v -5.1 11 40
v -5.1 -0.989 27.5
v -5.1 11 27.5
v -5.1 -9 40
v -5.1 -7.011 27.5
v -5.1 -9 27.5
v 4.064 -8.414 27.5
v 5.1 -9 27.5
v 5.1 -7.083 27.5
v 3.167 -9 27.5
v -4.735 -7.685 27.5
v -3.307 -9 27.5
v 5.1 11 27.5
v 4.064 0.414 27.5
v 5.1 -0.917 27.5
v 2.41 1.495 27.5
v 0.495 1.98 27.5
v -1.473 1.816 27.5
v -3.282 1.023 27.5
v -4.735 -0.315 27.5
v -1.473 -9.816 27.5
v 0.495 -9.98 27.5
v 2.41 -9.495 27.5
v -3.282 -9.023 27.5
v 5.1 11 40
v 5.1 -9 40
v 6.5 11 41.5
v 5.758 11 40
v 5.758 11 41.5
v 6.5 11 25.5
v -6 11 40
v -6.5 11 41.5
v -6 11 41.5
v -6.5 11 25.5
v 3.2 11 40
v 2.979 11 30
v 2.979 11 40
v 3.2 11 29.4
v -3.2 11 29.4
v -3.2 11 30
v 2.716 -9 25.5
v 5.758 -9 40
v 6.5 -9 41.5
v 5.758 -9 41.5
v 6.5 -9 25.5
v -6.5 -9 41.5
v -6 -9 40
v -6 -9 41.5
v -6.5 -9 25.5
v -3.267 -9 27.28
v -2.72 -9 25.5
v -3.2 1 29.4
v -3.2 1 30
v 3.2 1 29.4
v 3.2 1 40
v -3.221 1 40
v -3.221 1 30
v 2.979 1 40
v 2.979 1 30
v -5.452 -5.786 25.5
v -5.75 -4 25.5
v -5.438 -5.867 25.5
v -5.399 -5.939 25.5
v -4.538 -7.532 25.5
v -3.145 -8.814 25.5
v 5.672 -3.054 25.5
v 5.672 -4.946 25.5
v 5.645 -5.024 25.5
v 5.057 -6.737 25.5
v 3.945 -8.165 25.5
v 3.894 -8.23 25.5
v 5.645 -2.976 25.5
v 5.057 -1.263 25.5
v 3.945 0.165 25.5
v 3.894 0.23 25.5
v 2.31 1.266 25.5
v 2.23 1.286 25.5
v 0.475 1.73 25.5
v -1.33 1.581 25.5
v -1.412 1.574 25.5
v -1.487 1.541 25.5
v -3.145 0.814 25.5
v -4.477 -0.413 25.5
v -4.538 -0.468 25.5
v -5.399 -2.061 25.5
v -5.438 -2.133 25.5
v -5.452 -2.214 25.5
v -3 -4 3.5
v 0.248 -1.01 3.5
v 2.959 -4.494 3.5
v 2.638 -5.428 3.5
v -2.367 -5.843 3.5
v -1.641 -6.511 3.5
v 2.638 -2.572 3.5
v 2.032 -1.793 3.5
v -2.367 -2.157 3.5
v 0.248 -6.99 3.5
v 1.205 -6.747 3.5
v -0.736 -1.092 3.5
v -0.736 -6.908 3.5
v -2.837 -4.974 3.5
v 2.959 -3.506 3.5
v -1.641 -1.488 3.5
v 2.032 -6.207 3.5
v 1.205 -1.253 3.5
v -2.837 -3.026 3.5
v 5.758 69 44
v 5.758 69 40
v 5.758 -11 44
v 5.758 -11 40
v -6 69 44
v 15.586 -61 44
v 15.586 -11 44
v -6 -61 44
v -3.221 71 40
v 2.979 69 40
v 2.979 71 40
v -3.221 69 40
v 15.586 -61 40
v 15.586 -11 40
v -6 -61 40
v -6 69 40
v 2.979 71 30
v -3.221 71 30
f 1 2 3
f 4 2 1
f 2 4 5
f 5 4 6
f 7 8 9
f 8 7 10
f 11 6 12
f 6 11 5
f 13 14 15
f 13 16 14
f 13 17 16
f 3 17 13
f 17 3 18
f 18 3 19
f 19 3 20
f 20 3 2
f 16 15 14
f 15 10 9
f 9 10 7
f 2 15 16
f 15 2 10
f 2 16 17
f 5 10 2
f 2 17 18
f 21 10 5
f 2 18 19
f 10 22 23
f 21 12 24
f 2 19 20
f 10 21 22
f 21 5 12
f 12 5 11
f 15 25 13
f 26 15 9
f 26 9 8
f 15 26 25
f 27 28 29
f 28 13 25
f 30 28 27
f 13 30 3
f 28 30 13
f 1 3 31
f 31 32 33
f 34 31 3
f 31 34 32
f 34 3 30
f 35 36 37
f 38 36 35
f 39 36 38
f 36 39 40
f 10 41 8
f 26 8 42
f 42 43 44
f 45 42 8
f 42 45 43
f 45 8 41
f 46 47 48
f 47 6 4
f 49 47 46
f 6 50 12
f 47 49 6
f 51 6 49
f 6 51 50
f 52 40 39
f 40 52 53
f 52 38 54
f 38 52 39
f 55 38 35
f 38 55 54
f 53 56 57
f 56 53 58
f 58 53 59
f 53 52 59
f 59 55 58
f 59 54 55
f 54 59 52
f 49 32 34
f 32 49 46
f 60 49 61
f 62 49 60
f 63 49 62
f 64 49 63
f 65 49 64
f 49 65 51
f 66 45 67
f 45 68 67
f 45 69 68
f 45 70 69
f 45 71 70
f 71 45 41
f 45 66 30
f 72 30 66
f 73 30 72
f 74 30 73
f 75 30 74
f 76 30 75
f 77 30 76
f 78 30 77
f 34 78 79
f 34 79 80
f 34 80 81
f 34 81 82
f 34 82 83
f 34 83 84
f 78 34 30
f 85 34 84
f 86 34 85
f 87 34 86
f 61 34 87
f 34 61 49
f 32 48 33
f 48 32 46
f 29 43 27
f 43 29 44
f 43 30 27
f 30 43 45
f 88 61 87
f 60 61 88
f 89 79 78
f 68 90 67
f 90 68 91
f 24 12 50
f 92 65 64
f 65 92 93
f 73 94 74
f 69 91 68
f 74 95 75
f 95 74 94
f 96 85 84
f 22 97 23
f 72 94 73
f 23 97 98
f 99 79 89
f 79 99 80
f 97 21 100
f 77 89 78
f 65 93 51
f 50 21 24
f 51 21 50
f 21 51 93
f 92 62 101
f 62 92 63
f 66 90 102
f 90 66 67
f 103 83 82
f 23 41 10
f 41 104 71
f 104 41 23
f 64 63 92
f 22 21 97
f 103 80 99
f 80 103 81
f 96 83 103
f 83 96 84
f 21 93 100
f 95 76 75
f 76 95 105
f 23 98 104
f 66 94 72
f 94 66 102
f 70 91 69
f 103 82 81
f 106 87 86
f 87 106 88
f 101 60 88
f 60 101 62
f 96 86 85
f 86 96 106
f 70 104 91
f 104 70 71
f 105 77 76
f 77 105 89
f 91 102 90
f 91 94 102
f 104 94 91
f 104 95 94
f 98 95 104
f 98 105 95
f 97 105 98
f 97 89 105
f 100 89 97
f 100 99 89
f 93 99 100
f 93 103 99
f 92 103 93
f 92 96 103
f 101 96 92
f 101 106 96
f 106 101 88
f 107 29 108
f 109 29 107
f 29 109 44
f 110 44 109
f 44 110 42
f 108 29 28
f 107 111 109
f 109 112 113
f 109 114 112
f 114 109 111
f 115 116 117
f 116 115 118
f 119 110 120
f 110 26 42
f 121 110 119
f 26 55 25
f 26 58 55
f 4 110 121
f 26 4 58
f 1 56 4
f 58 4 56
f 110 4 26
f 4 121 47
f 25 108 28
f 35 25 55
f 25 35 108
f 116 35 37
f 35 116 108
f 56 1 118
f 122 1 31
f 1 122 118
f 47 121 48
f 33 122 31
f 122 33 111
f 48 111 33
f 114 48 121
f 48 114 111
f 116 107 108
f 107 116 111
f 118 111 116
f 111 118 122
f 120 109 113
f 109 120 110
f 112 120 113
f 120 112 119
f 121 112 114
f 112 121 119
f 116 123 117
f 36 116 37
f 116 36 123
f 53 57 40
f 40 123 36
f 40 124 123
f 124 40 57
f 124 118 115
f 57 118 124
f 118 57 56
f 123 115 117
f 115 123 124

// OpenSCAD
// file: irkem_hammerTips_v0.scad
tol = 0.2;
extrWall = 1.7+tol;
extrH = 12.9+tol;//12.6+tol;
extrW = 10+tol;

hammerY = 20;
hammerZ = 24;

module hammerTips(){
translate([0,-5,0]) cylinder(hammerZ,6,3);
difference(){
    translate([-6.5,-10,-14]) cube([13,hammerY,16]);
    union(){uChan();translate([-extrW/2,-hammerY/2,-extrH]) cube([extrW,hammerY/2,extrH]);
}
}
module uChan(){
difference(){
    translate([-extrW/2,-hammerY/2,-extrH]) cube([extrW,hammerY,extrH]);
    translate([-extrW/2+extrWall,-hammerY/2,-extrH-extrWall]) cube([extrW-2*extrWall,hammerY,extrH]);
}
}
}

//hammerTips();
// main file
include <irkem_hammerTips_v0.scad>

xO = -6;
yO = -11;
zO = 40;

kH = 4;
bH = 10;
wL = 50;
bL = 80;
oct = 6.5 * 25.4;
gap = 2;
n_oct = 1;//5;
n_keys = 12 * n_oct;
oset = -1;

sharpFlag = 1;

for (k = [0]){//:1:(n_keys-1)]){
    //
    translate([k*13.75+6.0+xO,12+yO,-12.5+zO]) rotate([0,180,0]) hammerTips();
}

for (k = [0:1:(n_oct-1)]){

//C:
color("ivory") translate([k*oct+0+xO,0+yO,0+zO]) cube([oct*1/12-gap,bL,kH]);
color("ivory") translate([k*oct+0+xO,-wL+yO,0+zO]) cube([oct*1/7-gap,wL,kH]);

////C#:
//if (sharpFlag){    
//color("black") translate([k*oct+oct*1/12+xO,gap+yO,0+zO]) cube([oct*1/12-gap,bL,kH+bH]);
//}//

////D:
//color("ivory") translate([k*oct+oct*2/12+xO,0+yO,0+zO]) cube([oct*1/12-gap,bL,kH]);
//color("ivory") translate([k*oct+oct*1/7+xO,-wL+yO,0+zO]) cube([oct*1/7-gap,wL,kH]);//

////D#:
//if (sharpFlag){
//color("black") translate([k*oct+oct*3/12+xO,gap+yO,0+zO]) cube([oct*1/12-gap,bL,kH+bH]);
//}//

////E:
//color("ivory") translate([k*oct+oct*4/12+xO,0+yO,0+zO]) cube([2+oct*1/12-gap,bL,kH]);
//color("ivory") translate([k*oct+oct*2/7+xO,-wL+yO,0+zO]) cube([oct*1/7-gap,wL,kH]);//

////F:
//color("ivory") difference(){
//    translate([k*oct+oct*3/7+xO,-wL+yO,0+zO]) cube([oct*1/7-gap,wL+bL,kH]);
//    translate([k*oct+oct*6/12-2+xO,0+yO,0+zO]) cube([4+oct*(1/7-1/12)-gap,bL,kH]);
//}
//color("ivory") translate([k*oct+oct*3/7+xO,-wL+yO,0+zO]) cube([oct*1/7-gap,wL,kH]);//

////F#:
//if (sharpFlag){
//color("black") translate([k*oct+oct*6/12+xO,gap+yO,0+zO]) cube([oct*1/12-gap,bL,kH+bH]);
//}//

////G:
//color("ivory") translate([k*oct+oct*7/12+xO,0+yO,0+zO]) cube([oct*1/12-gap,bL,kH]);
//color("ivory") translate([k*oct+oct*4/7+xO,-wL+yO,0+zO]) cube([oct*1/7-gap,wL,kH]);//

////G#:
//if (sharpFlag){
//color("black") translate([k*oct+oct*8/12+xO,gap+yO,0+zO]) cube([oct*1/12-gap,bL,kH+bH]);
//}//

////A:
//color("ivory") translate([k*oct+oct*9/12+xO,0+yO,0+zO]) cube([oct*1/12-gap,bL,kH]);
//color("ivory") translate([k*oct+oct*5/7+xO,-wL+yO,0+zO]) cube([oct*1/7-gap,wL,kH]);//

////A#:
//if (sharpFlag){
//color("black") translate([k*oct+oct*10/12+xO,gap+yO,0+zO]) cube([oct*1/12-gap,bL,kH+bH]);
//}//

////B:
//color("ivory") translate([k*oct+oct*11/12+xO,0+yO,0+zO]) cube([oct*1/12-gap,bL,kH]);
//color("ivory") translate([k*oct+oct*6/7+xO,-wL+yO,0+zO]) cube([oct*1/7-gap,wL,kH]);//

}

for (i = [0]){//,2,4,5,7,9,11]){//[0:1:(n_keys-1)]){
    translate([oset+oct*i/12+(oct*1/12-6.2)/2+xO,2+10+yO,-10+zO]) cube([6.2,bL-10,10]);
}

//if (sharpFlag){
//    for (i = [1,3,6,8,10]){//[0:1:(n_keys-1)]){
//    translate([oset+oct*i/12+(oct*1/12-6.2)/2+xO,2+10+yO,-10+zO]) cube([6.2,bL-10,10]);
//}
//}
